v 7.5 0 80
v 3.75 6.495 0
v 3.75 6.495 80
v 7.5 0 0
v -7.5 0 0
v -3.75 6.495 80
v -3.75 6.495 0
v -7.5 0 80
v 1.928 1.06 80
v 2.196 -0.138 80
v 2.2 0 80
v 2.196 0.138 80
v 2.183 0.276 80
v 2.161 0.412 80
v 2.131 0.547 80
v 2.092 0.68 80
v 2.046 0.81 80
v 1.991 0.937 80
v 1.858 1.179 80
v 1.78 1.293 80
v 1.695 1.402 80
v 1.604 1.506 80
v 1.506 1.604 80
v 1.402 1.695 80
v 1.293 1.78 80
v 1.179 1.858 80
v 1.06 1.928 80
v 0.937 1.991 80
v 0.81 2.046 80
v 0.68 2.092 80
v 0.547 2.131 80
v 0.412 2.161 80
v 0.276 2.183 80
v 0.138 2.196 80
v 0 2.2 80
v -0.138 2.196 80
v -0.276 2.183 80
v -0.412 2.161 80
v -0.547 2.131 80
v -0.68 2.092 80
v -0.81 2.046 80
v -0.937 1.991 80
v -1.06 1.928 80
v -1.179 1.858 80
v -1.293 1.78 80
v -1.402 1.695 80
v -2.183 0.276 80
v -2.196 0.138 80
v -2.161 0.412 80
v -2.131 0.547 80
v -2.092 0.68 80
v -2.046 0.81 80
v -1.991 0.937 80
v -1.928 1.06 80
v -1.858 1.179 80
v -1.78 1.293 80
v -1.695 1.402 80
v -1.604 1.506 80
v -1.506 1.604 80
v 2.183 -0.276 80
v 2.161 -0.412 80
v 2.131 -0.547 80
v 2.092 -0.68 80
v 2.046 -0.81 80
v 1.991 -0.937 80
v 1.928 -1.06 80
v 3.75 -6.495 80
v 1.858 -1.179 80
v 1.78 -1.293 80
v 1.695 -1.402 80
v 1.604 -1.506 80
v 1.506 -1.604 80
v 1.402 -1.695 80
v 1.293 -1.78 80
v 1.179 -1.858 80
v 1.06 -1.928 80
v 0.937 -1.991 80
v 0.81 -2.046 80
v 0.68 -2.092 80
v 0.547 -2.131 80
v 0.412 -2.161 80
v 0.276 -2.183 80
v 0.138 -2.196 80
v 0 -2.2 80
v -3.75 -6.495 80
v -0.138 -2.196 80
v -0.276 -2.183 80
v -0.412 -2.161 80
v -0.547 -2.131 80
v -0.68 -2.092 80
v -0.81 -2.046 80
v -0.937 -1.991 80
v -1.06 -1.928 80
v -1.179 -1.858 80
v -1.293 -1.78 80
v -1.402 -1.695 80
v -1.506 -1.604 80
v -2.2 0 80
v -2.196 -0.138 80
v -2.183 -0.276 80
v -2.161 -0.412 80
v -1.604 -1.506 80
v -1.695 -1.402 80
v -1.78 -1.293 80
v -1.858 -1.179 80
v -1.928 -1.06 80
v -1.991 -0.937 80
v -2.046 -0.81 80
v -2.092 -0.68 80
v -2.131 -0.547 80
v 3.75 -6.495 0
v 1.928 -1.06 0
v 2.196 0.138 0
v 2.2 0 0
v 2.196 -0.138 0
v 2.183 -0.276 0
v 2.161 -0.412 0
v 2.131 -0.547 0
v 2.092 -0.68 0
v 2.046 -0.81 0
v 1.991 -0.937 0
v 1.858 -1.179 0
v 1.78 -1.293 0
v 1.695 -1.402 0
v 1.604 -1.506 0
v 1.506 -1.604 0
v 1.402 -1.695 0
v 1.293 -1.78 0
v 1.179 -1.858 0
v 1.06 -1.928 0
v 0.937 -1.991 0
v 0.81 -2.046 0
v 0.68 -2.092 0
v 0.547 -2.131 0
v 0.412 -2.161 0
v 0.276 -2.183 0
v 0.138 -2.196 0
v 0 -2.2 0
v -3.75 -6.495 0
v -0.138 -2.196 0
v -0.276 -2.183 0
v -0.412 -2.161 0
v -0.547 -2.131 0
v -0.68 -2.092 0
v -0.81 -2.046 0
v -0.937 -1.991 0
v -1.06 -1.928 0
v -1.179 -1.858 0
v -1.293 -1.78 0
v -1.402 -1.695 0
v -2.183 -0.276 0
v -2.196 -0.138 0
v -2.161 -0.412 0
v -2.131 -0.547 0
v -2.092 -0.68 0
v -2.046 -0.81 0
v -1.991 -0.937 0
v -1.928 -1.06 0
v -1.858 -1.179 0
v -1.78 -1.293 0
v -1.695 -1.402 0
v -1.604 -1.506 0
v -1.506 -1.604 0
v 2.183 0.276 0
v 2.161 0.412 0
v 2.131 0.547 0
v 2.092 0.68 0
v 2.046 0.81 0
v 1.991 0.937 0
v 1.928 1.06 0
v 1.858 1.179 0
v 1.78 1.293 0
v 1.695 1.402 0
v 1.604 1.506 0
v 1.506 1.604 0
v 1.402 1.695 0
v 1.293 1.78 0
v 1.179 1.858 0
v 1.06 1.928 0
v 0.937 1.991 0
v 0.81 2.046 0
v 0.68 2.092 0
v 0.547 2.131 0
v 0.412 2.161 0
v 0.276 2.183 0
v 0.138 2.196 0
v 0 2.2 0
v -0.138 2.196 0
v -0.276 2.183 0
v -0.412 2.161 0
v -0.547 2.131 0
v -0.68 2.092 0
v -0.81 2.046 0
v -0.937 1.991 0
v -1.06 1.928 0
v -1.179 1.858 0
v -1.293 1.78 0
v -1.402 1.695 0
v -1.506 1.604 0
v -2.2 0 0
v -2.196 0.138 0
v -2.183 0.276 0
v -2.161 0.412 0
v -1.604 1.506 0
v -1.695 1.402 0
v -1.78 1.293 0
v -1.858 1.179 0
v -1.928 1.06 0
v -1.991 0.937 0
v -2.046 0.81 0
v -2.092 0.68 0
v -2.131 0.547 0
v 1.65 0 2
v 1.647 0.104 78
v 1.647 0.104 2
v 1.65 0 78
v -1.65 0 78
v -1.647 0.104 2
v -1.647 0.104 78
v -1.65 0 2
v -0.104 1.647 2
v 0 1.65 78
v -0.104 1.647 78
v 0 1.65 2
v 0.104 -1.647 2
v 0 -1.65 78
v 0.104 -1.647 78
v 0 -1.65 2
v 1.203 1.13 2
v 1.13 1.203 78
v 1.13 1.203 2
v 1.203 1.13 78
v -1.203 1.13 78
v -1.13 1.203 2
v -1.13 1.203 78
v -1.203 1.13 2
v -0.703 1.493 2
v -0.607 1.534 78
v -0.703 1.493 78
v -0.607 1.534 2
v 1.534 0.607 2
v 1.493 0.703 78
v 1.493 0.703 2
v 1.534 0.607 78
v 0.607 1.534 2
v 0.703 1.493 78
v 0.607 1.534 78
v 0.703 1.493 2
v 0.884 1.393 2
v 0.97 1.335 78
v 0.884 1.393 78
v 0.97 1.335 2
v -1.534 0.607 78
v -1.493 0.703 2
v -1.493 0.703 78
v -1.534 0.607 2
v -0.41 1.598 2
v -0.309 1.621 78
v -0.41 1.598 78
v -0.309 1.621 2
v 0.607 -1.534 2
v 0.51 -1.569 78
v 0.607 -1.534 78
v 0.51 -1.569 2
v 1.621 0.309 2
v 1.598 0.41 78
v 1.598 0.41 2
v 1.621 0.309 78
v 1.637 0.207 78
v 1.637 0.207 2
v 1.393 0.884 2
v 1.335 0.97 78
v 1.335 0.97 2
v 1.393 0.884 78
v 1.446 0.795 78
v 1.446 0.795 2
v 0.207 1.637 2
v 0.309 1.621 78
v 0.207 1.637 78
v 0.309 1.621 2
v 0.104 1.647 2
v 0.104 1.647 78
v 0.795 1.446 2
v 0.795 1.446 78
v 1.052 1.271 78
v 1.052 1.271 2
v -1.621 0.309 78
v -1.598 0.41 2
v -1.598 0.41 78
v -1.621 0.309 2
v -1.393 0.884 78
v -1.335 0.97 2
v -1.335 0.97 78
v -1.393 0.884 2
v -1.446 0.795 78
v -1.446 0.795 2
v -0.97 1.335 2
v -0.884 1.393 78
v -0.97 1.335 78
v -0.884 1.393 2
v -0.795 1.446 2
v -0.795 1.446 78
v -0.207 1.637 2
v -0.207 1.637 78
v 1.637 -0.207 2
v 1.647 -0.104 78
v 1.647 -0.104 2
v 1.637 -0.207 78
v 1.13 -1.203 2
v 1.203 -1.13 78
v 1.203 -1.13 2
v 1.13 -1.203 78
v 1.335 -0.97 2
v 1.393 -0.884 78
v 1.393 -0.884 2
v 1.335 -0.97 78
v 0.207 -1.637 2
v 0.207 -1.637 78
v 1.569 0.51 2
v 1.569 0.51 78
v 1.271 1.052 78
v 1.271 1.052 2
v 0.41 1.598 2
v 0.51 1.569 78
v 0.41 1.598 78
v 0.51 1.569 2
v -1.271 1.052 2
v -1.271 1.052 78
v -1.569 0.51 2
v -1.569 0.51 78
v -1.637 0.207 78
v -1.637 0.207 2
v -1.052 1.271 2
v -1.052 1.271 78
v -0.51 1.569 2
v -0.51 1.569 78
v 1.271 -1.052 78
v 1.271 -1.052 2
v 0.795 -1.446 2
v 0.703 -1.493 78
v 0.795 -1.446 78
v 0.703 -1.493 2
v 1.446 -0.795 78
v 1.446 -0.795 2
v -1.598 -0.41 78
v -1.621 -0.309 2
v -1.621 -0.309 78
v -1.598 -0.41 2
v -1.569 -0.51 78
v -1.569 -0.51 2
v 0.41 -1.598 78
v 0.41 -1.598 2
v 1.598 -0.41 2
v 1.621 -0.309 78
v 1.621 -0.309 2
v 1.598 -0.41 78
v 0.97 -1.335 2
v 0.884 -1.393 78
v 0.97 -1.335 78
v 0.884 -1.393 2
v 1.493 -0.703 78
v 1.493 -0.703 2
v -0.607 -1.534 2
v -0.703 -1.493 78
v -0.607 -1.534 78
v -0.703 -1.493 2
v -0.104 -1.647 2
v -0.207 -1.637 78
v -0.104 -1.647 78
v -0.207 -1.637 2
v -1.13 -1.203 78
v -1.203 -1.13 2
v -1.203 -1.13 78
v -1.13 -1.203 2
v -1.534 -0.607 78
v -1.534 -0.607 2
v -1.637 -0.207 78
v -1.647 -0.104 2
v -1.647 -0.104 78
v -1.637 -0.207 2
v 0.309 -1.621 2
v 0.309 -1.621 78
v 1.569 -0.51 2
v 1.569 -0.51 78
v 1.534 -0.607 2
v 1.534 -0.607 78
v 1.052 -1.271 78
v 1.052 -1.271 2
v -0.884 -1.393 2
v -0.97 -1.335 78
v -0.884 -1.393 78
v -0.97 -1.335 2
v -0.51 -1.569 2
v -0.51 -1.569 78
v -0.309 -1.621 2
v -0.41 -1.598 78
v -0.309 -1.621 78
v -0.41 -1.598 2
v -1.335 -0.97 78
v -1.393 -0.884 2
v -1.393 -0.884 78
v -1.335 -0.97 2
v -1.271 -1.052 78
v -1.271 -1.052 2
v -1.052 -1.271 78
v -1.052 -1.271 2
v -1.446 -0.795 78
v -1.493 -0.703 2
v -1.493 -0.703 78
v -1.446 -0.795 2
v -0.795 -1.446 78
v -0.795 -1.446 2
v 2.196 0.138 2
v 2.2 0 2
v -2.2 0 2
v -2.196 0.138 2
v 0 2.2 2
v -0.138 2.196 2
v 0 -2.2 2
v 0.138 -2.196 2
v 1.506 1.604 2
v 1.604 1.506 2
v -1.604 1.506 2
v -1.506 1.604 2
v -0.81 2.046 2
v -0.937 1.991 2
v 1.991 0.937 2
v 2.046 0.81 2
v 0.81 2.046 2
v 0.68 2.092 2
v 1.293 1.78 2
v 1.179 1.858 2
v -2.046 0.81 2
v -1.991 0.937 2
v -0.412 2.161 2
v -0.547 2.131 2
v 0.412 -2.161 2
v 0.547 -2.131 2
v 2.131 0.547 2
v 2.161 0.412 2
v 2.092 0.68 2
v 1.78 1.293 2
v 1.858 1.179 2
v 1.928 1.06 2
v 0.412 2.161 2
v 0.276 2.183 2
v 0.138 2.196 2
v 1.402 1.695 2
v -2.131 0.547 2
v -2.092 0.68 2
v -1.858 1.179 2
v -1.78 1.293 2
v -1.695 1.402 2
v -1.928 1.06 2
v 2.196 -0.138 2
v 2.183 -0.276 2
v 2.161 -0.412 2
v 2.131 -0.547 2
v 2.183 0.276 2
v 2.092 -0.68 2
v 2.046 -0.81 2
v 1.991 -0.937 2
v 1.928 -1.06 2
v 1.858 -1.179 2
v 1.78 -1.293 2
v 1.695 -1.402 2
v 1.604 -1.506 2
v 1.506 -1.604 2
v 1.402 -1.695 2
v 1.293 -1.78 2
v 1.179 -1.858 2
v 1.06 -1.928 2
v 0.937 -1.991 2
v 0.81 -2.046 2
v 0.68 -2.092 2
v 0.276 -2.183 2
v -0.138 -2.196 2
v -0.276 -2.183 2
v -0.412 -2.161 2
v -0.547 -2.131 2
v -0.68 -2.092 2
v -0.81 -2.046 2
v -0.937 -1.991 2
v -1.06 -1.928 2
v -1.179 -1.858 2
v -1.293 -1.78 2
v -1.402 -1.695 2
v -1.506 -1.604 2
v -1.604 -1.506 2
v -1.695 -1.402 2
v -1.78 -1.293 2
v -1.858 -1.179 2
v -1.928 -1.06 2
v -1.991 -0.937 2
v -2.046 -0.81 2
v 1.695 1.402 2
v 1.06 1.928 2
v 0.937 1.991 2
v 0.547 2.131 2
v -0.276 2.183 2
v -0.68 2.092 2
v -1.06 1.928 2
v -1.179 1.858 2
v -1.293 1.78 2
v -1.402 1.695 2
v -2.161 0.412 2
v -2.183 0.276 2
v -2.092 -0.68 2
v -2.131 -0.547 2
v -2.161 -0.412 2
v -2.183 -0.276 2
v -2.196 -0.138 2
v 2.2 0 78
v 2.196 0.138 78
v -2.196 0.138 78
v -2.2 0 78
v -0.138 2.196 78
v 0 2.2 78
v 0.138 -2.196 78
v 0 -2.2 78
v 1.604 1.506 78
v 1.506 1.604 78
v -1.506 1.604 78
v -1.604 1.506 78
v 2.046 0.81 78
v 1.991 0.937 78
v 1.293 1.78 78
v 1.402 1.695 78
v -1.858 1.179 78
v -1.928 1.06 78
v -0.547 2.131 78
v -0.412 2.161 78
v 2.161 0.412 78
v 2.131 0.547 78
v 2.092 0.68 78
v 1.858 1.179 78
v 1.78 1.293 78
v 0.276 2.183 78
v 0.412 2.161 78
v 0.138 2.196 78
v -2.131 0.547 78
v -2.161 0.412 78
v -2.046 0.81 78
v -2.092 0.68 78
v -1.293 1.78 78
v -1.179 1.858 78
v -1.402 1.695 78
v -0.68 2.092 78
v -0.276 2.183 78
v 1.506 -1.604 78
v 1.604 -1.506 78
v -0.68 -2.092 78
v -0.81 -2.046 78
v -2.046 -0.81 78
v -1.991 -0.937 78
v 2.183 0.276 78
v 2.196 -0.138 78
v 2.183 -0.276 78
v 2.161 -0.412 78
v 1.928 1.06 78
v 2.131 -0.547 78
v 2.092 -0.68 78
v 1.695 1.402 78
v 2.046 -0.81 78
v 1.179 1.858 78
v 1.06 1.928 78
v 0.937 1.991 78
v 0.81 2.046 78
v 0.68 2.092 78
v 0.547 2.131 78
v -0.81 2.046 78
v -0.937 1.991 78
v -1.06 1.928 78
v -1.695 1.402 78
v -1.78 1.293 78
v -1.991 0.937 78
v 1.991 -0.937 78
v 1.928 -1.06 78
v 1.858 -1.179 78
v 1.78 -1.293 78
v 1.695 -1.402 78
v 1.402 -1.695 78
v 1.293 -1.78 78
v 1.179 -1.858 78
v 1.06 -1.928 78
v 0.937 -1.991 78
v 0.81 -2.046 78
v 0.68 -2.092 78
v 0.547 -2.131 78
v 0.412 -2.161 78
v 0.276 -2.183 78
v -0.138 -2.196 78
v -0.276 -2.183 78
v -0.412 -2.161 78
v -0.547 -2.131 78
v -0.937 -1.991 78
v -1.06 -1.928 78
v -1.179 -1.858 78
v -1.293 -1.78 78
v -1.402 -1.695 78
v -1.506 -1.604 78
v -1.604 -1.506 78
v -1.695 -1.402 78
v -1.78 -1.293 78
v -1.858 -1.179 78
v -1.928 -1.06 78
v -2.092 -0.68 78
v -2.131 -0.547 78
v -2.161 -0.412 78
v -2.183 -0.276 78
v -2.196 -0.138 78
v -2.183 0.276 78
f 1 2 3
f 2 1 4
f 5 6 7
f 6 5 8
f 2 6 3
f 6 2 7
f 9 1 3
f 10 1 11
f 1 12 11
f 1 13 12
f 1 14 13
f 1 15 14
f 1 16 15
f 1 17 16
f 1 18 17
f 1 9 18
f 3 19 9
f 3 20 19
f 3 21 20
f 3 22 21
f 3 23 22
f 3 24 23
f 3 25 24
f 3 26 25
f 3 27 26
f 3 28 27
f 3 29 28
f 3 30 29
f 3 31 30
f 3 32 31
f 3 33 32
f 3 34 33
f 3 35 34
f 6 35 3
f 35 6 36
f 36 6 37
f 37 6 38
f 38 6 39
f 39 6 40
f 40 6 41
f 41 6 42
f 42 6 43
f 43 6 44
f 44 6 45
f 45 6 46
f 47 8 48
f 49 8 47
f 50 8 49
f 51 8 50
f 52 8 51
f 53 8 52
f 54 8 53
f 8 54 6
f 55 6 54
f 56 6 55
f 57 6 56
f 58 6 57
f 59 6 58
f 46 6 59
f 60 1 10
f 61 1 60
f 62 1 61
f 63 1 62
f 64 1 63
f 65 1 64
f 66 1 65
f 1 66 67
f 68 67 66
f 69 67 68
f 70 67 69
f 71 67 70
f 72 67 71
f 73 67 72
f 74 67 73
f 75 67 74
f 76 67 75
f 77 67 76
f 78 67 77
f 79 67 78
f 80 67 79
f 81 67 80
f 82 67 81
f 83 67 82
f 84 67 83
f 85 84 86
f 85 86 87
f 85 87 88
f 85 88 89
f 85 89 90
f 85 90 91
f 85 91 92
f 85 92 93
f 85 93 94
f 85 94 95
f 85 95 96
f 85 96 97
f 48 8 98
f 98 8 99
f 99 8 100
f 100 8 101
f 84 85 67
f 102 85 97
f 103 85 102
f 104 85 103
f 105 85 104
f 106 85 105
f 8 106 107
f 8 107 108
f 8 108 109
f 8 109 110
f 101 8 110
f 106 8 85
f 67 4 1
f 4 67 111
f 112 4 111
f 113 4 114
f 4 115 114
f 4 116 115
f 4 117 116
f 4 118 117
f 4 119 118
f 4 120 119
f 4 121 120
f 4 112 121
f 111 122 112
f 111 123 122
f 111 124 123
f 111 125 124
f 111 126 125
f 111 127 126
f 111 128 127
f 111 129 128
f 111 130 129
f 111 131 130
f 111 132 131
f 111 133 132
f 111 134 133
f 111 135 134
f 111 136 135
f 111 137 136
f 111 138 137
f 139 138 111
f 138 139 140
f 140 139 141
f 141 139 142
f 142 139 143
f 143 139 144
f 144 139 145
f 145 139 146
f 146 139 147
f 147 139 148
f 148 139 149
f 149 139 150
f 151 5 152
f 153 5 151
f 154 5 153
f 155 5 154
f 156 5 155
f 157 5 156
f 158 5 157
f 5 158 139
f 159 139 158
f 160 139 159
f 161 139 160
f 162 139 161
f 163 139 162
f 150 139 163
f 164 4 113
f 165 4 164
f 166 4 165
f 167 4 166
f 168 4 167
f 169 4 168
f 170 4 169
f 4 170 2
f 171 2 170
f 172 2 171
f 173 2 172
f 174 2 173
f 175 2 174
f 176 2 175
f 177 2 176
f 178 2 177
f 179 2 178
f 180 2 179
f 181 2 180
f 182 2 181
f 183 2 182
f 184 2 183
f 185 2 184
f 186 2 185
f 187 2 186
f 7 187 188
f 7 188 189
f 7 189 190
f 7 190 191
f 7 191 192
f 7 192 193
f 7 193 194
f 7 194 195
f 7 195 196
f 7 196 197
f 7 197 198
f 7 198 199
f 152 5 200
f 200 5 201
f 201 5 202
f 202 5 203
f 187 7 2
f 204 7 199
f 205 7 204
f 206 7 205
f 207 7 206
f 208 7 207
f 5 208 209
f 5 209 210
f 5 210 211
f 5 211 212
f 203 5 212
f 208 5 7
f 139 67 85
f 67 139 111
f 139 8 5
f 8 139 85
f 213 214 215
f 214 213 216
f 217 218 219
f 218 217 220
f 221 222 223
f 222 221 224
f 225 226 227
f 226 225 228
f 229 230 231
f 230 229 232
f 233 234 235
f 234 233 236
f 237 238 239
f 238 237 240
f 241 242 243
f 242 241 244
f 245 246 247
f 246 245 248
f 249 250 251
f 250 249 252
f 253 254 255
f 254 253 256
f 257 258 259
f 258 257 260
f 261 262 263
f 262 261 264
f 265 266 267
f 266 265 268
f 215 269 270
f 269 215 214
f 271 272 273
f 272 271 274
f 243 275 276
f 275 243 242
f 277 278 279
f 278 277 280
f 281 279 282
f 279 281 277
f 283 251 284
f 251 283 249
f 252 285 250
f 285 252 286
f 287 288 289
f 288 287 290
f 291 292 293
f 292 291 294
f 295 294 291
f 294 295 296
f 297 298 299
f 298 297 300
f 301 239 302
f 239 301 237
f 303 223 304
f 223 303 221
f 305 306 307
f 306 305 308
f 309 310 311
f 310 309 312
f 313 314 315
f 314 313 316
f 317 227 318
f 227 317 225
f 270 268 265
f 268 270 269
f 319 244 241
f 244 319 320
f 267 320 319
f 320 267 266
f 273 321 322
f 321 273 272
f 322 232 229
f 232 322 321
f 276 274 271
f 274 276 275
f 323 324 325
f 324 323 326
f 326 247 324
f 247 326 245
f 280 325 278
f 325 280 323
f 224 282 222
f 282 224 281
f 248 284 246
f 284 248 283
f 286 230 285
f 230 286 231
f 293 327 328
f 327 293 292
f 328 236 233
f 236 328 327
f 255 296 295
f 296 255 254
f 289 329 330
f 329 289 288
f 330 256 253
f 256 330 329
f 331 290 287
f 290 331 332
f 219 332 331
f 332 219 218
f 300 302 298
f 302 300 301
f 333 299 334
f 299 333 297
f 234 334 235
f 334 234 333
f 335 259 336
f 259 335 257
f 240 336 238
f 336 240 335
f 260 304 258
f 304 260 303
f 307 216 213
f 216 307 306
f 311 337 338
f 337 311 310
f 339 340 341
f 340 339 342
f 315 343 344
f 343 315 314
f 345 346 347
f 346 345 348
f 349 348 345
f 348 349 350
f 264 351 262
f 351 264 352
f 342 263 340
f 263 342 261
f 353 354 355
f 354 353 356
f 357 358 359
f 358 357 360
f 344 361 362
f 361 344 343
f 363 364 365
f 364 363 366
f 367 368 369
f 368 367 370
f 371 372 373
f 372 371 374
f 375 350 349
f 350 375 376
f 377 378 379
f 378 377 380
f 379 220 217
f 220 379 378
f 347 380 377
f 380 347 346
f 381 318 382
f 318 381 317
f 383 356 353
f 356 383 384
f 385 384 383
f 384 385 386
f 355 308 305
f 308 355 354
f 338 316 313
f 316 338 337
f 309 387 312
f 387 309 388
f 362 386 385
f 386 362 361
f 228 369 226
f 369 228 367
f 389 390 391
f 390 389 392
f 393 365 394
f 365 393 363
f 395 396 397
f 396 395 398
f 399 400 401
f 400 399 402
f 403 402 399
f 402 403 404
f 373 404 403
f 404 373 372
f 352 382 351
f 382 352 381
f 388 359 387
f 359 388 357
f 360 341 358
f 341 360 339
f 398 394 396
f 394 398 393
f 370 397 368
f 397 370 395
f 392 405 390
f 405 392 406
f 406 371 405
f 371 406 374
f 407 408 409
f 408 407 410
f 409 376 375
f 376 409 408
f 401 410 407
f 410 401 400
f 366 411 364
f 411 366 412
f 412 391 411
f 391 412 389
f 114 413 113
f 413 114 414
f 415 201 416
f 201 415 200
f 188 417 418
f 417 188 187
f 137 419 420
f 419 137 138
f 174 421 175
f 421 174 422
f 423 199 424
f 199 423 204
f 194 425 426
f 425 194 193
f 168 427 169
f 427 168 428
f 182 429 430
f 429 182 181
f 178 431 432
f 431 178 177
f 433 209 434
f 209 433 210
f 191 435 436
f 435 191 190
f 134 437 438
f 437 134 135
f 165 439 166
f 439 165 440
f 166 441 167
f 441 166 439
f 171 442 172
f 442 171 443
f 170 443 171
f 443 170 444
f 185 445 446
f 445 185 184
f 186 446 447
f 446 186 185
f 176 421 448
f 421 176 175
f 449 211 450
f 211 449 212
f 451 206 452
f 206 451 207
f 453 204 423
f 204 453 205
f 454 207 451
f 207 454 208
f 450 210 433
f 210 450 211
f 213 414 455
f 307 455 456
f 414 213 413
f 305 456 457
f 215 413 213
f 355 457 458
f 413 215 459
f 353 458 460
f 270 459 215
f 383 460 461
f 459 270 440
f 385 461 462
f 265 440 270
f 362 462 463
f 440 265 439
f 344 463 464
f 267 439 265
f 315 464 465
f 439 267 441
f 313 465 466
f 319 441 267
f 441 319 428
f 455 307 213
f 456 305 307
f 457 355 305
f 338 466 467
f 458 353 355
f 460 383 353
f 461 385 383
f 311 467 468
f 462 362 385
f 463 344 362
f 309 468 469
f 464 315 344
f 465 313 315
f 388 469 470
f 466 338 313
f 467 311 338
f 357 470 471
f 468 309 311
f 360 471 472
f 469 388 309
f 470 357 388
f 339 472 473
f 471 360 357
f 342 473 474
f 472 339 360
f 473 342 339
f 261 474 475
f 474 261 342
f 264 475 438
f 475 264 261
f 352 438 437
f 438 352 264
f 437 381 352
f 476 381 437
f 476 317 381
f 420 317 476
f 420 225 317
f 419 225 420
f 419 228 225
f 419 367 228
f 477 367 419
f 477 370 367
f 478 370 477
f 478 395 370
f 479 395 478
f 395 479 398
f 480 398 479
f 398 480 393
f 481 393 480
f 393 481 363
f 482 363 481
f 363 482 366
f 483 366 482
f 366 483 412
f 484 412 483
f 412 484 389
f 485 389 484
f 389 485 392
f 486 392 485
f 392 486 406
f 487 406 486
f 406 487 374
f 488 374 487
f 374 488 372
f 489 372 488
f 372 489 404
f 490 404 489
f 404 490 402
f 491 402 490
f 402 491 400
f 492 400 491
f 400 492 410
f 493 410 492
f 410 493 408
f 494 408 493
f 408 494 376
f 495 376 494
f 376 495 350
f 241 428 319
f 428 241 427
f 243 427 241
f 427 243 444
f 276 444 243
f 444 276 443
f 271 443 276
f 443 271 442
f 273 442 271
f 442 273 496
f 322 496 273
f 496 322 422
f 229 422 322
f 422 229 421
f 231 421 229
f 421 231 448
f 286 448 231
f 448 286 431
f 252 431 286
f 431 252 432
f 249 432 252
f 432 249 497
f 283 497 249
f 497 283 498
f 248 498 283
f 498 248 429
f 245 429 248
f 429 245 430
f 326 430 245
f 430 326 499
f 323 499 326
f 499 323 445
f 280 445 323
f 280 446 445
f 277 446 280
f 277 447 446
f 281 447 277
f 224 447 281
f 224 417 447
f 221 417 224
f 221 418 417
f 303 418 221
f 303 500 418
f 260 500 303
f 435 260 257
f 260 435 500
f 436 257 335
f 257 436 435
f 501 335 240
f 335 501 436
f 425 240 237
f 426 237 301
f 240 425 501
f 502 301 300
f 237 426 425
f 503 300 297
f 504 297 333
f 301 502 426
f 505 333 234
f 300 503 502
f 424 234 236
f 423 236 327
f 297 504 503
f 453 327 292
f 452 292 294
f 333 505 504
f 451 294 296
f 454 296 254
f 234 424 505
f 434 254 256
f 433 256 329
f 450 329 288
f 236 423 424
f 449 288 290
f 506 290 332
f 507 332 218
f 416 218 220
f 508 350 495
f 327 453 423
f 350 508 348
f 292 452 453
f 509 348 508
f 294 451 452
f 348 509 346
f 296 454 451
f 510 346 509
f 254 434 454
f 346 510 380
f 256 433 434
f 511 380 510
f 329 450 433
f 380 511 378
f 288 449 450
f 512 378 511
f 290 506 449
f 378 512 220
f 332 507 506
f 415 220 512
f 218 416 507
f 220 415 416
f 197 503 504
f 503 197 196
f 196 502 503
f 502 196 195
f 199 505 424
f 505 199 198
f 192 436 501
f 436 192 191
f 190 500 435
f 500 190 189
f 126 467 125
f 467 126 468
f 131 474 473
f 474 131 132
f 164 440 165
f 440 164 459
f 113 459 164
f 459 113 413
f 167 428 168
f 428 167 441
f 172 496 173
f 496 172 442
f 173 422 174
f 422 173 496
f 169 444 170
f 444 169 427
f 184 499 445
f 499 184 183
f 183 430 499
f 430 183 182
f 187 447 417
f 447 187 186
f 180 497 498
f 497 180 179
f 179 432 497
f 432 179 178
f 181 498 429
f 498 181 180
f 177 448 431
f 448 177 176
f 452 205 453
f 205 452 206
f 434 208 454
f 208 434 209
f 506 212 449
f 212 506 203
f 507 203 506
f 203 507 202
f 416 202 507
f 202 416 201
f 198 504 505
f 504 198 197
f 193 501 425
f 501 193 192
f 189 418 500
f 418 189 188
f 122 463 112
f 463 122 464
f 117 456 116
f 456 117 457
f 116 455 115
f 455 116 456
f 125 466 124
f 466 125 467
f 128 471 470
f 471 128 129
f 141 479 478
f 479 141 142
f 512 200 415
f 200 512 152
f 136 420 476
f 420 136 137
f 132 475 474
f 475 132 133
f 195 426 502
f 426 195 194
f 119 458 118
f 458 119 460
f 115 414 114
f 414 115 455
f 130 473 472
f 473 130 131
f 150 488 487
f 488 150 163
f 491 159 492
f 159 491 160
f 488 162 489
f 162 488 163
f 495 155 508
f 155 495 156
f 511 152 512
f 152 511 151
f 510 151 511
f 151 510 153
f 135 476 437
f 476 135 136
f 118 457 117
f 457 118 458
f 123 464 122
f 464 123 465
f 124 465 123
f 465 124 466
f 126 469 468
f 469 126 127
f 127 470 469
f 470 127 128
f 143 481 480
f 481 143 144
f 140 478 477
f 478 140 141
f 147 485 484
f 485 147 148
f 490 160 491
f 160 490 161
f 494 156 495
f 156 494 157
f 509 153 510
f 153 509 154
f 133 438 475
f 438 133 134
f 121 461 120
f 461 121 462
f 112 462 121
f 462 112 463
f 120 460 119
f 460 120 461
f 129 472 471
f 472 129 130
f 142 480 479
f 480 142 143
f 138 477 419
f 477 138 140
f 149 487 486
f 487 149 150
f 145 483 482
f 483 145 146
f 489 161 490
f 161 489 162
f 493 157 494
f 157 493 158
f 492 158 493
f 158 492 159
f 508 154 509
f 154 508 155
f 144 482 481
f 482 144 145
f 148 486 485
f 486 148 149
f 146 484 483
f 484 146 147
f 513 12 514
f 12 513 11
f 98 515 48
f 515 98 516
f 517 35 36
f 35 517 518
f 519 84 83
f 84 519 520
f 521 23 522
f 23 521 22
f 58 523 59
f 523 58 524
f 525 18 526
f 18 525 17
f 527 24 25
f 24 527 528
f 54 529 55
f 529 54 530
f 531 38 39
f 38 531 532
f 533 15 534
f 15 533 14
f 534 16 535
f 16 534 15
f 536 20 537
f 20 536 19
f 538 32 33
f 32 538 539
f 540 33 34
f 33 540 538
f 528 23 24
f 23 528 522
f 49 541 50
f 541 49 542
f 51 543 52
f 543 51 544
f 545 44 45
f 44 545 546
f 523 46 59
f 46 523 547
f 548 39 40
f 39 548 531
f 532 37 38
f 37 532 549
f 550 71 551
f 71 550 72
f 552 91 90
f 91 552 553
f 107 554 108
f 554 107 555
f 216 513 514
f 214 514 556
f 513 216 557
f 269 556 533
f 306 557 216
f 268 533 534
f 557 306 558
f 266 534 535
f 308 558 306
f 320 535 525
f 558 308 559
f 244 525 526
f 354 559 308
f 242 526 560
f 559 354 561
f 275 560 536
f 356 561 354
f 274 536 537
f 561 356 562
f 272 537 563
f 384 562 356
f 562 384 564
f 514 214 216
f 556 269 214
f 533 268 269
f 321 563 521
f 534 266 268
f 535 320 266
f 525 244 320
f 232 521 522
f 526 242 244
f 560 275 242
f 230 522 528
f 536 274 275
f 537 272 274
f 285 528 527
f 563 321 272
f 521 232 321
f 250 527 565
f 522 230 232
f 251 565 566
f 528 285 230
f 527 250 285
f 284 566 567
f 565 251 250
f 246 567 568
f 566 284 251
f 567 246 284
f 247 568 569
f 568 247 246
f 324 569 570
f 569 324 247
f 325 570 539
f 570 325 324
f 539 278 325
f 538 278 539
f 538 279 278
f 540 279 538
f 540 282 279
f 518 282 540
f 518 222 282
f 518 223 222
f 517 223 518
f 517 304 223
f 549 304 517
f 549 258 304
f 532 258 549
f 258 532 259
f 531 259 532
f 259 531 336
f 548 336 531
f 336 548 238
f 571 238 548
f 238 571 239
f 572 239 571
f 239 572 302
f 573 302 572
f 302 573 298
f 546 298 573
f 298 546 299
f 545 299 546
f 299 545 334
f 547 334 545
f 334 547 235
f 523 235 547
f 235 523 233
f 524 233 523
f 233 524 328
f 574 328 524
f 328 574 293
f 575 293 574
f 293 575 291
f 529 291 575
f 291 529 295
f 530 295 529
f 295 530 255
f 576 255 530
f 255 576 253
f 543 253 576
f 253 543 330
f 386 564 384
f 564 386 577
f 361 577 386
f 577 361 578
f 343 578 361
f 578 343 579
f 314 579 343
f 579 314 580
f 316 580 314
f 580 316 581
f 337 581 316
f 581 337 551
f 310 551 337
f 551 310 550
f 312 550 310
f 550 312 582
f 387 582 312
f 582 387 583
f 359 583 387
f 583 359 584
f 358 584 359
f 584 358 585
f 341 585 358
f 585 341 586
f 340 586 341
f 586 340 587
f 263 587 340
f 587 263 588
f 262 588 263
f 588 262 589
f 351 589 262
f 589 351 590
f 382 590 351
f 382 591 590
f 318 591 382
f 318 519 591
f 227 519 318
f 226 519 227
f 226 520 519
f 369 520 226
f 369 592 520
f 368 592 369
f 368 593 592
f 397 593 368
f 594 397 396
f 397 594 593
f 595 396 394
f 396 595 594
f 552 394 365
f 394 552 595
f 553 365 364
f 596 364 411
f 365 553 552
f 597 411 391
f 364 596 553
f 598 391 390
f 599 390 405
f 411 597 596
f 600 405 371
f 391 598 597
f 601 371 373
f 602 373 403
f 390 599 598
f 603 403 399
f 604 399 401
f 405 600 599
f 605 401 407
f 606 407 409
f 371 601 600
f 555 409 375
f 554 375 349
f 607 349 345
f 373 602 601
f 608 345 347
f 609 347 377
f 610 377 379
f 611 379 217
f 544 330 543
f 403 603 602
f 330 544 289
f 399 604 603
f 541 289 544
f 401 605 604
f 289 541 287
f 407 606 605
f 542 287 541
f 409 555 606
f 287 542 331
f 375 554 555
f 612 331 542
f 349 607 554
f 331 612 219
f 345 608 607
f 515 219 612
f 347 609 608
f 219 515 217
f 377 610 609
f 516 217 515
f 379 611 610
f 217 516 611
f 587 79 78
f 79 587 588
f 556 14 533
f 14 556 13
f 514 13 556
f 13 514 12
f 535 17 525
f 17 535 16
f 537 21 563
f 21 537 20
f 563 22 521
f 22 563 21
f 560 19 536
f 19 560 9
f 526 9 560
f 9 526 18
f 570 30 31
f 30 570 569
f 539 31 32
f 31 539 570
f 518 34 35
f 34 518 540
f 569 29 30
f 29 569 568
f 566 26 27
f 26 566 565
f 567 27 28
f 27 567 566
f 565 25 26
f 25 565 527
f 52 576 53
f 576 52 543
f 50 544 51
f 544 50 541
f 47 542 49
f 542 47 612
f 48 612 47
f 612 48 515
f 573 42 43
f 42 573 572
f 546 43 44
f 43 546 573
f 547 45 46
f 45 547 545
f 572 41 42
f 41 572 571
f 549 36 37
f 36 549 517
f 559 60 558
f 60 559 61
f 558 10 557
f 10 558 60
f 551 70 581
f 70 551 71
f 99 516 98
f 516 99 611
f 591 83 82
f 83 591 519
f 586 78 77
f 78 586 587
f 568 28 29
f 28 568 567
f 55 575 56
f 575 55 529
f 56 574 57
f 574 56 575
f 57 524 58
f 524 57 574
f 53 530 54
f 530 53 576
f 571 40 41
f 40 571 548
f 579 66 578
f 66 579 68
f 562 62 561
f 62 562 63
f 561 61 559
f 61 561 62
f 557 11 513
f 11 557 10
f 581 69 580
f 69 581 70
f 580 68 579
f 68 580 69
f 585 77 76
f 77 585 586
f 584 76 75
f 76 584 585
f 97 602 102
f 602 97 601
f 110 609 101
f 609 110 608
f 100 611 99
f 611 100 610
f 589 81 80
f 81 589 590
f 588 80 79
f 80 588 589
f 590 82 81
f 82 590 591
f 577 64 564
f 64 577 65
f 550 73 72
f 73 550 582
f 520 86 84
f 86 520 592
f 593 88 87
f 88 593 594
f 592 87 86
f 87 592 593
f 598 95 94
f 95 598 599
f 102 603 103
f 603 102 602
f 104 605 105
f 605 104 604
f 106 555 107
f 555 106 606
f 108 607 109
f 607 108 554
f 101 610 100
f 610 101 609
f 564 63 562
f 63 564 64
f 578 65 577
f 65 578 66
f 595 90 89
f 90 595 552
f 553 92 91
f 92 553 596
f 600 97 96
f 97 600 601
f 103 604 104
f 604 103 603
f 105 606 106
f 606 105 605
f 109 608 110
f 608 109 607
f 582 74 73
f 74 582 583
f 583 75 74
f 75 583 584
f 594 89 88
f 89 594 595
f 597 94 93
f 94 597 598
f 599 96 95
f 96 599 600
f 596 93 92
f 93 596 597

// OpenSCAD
//Soportes:
cilindros(3.3,80,20,3.3,6,4.4);

module cilindros(diam_in,altura,separacion,diam_inserto,h_inserto,diam_inserto_arriba){
translate([separacion*0,0,0])
    difference(){
        cylinder(d=15,h=altura,$fn=6);
        translate([0,0,-0.01])
            cylinder(d=diam_in,h=altura*2,$fn=100);
        //inferior:M3*6*4.2
        translate([0,0,-0.01])
            cylinder(d=diam_inserto,h=8,$fn=100);
        translate([0,0,-0.01])
            cylinder(d=diam_inserto_arriba,h=2+0.01,$fn=100);
        //superior:M3*6*4.2
        translate([0,0,altura-h_inserto])
            cylinder(d=diam_inserto,h=h_inserto+0.01,$fn=100);
        translate([0,0,altura-2])
            cylinder(d=diam_inserto_arriba,h=2+0.01,$fn=100);
        
        
    }
//-----------Quitar comentario para imprimir los 4------
/*
translate([separacion*1,0,0])
    difference(){
        cylinder(d=10,h=altura,$fn=5);
        translate([0,0,-0.01])
            cylinder(d=diam_in,h=altura*2,$fn=100);
        //inferior:M3*6*4.2
        translate([0,0,-0.01])
            cylinder(d=diam_inserto,h=h_inserto,$fn=100);
        //superior:M3*6*4.2
        translate([0,0,altura-6])
            cylinder(d=diam_inserto,h=h_inserto+0.01,$fn=100);
    }
translate([separacion*2,0,0])
    difference(){
        cylinder(d=10,h=altura,$fn=5);
        translate([0,0,-0.01])
            cylinder(d=diam_in,h=altura*2,$fn=100);
        //inferior:M3*6*4.2
        translate([0,0,-0.01])
            cylinder(d=diam_inserto,h=h_inserto,$fn=100);
        //superior:M3*6*4.2
        translate([0,0,altura-6])
            cylinder(d=diam_inserto,h=h_inserto+0.01,$fn=100);
    }
translate([separacion*3,0,0])
    difference(){
        cylinder(d=10,h=altura,$fn=5);
        translate([0,0,-0.01])
            cylinder(d=diam_in,h=altura*2,$fn=100);
        //inferior:M3*6*4.2
        translate([0,0,-0.01])
            cylinder(d=diam_inserto,h=h_inserto,$fn=100);
        //superior:M3*6*4.2
        translate([0,0,altura-6])
            cylinder(d=diam_inserto,h=h_inserto+0.01,$fn=100);
    }*/
}
